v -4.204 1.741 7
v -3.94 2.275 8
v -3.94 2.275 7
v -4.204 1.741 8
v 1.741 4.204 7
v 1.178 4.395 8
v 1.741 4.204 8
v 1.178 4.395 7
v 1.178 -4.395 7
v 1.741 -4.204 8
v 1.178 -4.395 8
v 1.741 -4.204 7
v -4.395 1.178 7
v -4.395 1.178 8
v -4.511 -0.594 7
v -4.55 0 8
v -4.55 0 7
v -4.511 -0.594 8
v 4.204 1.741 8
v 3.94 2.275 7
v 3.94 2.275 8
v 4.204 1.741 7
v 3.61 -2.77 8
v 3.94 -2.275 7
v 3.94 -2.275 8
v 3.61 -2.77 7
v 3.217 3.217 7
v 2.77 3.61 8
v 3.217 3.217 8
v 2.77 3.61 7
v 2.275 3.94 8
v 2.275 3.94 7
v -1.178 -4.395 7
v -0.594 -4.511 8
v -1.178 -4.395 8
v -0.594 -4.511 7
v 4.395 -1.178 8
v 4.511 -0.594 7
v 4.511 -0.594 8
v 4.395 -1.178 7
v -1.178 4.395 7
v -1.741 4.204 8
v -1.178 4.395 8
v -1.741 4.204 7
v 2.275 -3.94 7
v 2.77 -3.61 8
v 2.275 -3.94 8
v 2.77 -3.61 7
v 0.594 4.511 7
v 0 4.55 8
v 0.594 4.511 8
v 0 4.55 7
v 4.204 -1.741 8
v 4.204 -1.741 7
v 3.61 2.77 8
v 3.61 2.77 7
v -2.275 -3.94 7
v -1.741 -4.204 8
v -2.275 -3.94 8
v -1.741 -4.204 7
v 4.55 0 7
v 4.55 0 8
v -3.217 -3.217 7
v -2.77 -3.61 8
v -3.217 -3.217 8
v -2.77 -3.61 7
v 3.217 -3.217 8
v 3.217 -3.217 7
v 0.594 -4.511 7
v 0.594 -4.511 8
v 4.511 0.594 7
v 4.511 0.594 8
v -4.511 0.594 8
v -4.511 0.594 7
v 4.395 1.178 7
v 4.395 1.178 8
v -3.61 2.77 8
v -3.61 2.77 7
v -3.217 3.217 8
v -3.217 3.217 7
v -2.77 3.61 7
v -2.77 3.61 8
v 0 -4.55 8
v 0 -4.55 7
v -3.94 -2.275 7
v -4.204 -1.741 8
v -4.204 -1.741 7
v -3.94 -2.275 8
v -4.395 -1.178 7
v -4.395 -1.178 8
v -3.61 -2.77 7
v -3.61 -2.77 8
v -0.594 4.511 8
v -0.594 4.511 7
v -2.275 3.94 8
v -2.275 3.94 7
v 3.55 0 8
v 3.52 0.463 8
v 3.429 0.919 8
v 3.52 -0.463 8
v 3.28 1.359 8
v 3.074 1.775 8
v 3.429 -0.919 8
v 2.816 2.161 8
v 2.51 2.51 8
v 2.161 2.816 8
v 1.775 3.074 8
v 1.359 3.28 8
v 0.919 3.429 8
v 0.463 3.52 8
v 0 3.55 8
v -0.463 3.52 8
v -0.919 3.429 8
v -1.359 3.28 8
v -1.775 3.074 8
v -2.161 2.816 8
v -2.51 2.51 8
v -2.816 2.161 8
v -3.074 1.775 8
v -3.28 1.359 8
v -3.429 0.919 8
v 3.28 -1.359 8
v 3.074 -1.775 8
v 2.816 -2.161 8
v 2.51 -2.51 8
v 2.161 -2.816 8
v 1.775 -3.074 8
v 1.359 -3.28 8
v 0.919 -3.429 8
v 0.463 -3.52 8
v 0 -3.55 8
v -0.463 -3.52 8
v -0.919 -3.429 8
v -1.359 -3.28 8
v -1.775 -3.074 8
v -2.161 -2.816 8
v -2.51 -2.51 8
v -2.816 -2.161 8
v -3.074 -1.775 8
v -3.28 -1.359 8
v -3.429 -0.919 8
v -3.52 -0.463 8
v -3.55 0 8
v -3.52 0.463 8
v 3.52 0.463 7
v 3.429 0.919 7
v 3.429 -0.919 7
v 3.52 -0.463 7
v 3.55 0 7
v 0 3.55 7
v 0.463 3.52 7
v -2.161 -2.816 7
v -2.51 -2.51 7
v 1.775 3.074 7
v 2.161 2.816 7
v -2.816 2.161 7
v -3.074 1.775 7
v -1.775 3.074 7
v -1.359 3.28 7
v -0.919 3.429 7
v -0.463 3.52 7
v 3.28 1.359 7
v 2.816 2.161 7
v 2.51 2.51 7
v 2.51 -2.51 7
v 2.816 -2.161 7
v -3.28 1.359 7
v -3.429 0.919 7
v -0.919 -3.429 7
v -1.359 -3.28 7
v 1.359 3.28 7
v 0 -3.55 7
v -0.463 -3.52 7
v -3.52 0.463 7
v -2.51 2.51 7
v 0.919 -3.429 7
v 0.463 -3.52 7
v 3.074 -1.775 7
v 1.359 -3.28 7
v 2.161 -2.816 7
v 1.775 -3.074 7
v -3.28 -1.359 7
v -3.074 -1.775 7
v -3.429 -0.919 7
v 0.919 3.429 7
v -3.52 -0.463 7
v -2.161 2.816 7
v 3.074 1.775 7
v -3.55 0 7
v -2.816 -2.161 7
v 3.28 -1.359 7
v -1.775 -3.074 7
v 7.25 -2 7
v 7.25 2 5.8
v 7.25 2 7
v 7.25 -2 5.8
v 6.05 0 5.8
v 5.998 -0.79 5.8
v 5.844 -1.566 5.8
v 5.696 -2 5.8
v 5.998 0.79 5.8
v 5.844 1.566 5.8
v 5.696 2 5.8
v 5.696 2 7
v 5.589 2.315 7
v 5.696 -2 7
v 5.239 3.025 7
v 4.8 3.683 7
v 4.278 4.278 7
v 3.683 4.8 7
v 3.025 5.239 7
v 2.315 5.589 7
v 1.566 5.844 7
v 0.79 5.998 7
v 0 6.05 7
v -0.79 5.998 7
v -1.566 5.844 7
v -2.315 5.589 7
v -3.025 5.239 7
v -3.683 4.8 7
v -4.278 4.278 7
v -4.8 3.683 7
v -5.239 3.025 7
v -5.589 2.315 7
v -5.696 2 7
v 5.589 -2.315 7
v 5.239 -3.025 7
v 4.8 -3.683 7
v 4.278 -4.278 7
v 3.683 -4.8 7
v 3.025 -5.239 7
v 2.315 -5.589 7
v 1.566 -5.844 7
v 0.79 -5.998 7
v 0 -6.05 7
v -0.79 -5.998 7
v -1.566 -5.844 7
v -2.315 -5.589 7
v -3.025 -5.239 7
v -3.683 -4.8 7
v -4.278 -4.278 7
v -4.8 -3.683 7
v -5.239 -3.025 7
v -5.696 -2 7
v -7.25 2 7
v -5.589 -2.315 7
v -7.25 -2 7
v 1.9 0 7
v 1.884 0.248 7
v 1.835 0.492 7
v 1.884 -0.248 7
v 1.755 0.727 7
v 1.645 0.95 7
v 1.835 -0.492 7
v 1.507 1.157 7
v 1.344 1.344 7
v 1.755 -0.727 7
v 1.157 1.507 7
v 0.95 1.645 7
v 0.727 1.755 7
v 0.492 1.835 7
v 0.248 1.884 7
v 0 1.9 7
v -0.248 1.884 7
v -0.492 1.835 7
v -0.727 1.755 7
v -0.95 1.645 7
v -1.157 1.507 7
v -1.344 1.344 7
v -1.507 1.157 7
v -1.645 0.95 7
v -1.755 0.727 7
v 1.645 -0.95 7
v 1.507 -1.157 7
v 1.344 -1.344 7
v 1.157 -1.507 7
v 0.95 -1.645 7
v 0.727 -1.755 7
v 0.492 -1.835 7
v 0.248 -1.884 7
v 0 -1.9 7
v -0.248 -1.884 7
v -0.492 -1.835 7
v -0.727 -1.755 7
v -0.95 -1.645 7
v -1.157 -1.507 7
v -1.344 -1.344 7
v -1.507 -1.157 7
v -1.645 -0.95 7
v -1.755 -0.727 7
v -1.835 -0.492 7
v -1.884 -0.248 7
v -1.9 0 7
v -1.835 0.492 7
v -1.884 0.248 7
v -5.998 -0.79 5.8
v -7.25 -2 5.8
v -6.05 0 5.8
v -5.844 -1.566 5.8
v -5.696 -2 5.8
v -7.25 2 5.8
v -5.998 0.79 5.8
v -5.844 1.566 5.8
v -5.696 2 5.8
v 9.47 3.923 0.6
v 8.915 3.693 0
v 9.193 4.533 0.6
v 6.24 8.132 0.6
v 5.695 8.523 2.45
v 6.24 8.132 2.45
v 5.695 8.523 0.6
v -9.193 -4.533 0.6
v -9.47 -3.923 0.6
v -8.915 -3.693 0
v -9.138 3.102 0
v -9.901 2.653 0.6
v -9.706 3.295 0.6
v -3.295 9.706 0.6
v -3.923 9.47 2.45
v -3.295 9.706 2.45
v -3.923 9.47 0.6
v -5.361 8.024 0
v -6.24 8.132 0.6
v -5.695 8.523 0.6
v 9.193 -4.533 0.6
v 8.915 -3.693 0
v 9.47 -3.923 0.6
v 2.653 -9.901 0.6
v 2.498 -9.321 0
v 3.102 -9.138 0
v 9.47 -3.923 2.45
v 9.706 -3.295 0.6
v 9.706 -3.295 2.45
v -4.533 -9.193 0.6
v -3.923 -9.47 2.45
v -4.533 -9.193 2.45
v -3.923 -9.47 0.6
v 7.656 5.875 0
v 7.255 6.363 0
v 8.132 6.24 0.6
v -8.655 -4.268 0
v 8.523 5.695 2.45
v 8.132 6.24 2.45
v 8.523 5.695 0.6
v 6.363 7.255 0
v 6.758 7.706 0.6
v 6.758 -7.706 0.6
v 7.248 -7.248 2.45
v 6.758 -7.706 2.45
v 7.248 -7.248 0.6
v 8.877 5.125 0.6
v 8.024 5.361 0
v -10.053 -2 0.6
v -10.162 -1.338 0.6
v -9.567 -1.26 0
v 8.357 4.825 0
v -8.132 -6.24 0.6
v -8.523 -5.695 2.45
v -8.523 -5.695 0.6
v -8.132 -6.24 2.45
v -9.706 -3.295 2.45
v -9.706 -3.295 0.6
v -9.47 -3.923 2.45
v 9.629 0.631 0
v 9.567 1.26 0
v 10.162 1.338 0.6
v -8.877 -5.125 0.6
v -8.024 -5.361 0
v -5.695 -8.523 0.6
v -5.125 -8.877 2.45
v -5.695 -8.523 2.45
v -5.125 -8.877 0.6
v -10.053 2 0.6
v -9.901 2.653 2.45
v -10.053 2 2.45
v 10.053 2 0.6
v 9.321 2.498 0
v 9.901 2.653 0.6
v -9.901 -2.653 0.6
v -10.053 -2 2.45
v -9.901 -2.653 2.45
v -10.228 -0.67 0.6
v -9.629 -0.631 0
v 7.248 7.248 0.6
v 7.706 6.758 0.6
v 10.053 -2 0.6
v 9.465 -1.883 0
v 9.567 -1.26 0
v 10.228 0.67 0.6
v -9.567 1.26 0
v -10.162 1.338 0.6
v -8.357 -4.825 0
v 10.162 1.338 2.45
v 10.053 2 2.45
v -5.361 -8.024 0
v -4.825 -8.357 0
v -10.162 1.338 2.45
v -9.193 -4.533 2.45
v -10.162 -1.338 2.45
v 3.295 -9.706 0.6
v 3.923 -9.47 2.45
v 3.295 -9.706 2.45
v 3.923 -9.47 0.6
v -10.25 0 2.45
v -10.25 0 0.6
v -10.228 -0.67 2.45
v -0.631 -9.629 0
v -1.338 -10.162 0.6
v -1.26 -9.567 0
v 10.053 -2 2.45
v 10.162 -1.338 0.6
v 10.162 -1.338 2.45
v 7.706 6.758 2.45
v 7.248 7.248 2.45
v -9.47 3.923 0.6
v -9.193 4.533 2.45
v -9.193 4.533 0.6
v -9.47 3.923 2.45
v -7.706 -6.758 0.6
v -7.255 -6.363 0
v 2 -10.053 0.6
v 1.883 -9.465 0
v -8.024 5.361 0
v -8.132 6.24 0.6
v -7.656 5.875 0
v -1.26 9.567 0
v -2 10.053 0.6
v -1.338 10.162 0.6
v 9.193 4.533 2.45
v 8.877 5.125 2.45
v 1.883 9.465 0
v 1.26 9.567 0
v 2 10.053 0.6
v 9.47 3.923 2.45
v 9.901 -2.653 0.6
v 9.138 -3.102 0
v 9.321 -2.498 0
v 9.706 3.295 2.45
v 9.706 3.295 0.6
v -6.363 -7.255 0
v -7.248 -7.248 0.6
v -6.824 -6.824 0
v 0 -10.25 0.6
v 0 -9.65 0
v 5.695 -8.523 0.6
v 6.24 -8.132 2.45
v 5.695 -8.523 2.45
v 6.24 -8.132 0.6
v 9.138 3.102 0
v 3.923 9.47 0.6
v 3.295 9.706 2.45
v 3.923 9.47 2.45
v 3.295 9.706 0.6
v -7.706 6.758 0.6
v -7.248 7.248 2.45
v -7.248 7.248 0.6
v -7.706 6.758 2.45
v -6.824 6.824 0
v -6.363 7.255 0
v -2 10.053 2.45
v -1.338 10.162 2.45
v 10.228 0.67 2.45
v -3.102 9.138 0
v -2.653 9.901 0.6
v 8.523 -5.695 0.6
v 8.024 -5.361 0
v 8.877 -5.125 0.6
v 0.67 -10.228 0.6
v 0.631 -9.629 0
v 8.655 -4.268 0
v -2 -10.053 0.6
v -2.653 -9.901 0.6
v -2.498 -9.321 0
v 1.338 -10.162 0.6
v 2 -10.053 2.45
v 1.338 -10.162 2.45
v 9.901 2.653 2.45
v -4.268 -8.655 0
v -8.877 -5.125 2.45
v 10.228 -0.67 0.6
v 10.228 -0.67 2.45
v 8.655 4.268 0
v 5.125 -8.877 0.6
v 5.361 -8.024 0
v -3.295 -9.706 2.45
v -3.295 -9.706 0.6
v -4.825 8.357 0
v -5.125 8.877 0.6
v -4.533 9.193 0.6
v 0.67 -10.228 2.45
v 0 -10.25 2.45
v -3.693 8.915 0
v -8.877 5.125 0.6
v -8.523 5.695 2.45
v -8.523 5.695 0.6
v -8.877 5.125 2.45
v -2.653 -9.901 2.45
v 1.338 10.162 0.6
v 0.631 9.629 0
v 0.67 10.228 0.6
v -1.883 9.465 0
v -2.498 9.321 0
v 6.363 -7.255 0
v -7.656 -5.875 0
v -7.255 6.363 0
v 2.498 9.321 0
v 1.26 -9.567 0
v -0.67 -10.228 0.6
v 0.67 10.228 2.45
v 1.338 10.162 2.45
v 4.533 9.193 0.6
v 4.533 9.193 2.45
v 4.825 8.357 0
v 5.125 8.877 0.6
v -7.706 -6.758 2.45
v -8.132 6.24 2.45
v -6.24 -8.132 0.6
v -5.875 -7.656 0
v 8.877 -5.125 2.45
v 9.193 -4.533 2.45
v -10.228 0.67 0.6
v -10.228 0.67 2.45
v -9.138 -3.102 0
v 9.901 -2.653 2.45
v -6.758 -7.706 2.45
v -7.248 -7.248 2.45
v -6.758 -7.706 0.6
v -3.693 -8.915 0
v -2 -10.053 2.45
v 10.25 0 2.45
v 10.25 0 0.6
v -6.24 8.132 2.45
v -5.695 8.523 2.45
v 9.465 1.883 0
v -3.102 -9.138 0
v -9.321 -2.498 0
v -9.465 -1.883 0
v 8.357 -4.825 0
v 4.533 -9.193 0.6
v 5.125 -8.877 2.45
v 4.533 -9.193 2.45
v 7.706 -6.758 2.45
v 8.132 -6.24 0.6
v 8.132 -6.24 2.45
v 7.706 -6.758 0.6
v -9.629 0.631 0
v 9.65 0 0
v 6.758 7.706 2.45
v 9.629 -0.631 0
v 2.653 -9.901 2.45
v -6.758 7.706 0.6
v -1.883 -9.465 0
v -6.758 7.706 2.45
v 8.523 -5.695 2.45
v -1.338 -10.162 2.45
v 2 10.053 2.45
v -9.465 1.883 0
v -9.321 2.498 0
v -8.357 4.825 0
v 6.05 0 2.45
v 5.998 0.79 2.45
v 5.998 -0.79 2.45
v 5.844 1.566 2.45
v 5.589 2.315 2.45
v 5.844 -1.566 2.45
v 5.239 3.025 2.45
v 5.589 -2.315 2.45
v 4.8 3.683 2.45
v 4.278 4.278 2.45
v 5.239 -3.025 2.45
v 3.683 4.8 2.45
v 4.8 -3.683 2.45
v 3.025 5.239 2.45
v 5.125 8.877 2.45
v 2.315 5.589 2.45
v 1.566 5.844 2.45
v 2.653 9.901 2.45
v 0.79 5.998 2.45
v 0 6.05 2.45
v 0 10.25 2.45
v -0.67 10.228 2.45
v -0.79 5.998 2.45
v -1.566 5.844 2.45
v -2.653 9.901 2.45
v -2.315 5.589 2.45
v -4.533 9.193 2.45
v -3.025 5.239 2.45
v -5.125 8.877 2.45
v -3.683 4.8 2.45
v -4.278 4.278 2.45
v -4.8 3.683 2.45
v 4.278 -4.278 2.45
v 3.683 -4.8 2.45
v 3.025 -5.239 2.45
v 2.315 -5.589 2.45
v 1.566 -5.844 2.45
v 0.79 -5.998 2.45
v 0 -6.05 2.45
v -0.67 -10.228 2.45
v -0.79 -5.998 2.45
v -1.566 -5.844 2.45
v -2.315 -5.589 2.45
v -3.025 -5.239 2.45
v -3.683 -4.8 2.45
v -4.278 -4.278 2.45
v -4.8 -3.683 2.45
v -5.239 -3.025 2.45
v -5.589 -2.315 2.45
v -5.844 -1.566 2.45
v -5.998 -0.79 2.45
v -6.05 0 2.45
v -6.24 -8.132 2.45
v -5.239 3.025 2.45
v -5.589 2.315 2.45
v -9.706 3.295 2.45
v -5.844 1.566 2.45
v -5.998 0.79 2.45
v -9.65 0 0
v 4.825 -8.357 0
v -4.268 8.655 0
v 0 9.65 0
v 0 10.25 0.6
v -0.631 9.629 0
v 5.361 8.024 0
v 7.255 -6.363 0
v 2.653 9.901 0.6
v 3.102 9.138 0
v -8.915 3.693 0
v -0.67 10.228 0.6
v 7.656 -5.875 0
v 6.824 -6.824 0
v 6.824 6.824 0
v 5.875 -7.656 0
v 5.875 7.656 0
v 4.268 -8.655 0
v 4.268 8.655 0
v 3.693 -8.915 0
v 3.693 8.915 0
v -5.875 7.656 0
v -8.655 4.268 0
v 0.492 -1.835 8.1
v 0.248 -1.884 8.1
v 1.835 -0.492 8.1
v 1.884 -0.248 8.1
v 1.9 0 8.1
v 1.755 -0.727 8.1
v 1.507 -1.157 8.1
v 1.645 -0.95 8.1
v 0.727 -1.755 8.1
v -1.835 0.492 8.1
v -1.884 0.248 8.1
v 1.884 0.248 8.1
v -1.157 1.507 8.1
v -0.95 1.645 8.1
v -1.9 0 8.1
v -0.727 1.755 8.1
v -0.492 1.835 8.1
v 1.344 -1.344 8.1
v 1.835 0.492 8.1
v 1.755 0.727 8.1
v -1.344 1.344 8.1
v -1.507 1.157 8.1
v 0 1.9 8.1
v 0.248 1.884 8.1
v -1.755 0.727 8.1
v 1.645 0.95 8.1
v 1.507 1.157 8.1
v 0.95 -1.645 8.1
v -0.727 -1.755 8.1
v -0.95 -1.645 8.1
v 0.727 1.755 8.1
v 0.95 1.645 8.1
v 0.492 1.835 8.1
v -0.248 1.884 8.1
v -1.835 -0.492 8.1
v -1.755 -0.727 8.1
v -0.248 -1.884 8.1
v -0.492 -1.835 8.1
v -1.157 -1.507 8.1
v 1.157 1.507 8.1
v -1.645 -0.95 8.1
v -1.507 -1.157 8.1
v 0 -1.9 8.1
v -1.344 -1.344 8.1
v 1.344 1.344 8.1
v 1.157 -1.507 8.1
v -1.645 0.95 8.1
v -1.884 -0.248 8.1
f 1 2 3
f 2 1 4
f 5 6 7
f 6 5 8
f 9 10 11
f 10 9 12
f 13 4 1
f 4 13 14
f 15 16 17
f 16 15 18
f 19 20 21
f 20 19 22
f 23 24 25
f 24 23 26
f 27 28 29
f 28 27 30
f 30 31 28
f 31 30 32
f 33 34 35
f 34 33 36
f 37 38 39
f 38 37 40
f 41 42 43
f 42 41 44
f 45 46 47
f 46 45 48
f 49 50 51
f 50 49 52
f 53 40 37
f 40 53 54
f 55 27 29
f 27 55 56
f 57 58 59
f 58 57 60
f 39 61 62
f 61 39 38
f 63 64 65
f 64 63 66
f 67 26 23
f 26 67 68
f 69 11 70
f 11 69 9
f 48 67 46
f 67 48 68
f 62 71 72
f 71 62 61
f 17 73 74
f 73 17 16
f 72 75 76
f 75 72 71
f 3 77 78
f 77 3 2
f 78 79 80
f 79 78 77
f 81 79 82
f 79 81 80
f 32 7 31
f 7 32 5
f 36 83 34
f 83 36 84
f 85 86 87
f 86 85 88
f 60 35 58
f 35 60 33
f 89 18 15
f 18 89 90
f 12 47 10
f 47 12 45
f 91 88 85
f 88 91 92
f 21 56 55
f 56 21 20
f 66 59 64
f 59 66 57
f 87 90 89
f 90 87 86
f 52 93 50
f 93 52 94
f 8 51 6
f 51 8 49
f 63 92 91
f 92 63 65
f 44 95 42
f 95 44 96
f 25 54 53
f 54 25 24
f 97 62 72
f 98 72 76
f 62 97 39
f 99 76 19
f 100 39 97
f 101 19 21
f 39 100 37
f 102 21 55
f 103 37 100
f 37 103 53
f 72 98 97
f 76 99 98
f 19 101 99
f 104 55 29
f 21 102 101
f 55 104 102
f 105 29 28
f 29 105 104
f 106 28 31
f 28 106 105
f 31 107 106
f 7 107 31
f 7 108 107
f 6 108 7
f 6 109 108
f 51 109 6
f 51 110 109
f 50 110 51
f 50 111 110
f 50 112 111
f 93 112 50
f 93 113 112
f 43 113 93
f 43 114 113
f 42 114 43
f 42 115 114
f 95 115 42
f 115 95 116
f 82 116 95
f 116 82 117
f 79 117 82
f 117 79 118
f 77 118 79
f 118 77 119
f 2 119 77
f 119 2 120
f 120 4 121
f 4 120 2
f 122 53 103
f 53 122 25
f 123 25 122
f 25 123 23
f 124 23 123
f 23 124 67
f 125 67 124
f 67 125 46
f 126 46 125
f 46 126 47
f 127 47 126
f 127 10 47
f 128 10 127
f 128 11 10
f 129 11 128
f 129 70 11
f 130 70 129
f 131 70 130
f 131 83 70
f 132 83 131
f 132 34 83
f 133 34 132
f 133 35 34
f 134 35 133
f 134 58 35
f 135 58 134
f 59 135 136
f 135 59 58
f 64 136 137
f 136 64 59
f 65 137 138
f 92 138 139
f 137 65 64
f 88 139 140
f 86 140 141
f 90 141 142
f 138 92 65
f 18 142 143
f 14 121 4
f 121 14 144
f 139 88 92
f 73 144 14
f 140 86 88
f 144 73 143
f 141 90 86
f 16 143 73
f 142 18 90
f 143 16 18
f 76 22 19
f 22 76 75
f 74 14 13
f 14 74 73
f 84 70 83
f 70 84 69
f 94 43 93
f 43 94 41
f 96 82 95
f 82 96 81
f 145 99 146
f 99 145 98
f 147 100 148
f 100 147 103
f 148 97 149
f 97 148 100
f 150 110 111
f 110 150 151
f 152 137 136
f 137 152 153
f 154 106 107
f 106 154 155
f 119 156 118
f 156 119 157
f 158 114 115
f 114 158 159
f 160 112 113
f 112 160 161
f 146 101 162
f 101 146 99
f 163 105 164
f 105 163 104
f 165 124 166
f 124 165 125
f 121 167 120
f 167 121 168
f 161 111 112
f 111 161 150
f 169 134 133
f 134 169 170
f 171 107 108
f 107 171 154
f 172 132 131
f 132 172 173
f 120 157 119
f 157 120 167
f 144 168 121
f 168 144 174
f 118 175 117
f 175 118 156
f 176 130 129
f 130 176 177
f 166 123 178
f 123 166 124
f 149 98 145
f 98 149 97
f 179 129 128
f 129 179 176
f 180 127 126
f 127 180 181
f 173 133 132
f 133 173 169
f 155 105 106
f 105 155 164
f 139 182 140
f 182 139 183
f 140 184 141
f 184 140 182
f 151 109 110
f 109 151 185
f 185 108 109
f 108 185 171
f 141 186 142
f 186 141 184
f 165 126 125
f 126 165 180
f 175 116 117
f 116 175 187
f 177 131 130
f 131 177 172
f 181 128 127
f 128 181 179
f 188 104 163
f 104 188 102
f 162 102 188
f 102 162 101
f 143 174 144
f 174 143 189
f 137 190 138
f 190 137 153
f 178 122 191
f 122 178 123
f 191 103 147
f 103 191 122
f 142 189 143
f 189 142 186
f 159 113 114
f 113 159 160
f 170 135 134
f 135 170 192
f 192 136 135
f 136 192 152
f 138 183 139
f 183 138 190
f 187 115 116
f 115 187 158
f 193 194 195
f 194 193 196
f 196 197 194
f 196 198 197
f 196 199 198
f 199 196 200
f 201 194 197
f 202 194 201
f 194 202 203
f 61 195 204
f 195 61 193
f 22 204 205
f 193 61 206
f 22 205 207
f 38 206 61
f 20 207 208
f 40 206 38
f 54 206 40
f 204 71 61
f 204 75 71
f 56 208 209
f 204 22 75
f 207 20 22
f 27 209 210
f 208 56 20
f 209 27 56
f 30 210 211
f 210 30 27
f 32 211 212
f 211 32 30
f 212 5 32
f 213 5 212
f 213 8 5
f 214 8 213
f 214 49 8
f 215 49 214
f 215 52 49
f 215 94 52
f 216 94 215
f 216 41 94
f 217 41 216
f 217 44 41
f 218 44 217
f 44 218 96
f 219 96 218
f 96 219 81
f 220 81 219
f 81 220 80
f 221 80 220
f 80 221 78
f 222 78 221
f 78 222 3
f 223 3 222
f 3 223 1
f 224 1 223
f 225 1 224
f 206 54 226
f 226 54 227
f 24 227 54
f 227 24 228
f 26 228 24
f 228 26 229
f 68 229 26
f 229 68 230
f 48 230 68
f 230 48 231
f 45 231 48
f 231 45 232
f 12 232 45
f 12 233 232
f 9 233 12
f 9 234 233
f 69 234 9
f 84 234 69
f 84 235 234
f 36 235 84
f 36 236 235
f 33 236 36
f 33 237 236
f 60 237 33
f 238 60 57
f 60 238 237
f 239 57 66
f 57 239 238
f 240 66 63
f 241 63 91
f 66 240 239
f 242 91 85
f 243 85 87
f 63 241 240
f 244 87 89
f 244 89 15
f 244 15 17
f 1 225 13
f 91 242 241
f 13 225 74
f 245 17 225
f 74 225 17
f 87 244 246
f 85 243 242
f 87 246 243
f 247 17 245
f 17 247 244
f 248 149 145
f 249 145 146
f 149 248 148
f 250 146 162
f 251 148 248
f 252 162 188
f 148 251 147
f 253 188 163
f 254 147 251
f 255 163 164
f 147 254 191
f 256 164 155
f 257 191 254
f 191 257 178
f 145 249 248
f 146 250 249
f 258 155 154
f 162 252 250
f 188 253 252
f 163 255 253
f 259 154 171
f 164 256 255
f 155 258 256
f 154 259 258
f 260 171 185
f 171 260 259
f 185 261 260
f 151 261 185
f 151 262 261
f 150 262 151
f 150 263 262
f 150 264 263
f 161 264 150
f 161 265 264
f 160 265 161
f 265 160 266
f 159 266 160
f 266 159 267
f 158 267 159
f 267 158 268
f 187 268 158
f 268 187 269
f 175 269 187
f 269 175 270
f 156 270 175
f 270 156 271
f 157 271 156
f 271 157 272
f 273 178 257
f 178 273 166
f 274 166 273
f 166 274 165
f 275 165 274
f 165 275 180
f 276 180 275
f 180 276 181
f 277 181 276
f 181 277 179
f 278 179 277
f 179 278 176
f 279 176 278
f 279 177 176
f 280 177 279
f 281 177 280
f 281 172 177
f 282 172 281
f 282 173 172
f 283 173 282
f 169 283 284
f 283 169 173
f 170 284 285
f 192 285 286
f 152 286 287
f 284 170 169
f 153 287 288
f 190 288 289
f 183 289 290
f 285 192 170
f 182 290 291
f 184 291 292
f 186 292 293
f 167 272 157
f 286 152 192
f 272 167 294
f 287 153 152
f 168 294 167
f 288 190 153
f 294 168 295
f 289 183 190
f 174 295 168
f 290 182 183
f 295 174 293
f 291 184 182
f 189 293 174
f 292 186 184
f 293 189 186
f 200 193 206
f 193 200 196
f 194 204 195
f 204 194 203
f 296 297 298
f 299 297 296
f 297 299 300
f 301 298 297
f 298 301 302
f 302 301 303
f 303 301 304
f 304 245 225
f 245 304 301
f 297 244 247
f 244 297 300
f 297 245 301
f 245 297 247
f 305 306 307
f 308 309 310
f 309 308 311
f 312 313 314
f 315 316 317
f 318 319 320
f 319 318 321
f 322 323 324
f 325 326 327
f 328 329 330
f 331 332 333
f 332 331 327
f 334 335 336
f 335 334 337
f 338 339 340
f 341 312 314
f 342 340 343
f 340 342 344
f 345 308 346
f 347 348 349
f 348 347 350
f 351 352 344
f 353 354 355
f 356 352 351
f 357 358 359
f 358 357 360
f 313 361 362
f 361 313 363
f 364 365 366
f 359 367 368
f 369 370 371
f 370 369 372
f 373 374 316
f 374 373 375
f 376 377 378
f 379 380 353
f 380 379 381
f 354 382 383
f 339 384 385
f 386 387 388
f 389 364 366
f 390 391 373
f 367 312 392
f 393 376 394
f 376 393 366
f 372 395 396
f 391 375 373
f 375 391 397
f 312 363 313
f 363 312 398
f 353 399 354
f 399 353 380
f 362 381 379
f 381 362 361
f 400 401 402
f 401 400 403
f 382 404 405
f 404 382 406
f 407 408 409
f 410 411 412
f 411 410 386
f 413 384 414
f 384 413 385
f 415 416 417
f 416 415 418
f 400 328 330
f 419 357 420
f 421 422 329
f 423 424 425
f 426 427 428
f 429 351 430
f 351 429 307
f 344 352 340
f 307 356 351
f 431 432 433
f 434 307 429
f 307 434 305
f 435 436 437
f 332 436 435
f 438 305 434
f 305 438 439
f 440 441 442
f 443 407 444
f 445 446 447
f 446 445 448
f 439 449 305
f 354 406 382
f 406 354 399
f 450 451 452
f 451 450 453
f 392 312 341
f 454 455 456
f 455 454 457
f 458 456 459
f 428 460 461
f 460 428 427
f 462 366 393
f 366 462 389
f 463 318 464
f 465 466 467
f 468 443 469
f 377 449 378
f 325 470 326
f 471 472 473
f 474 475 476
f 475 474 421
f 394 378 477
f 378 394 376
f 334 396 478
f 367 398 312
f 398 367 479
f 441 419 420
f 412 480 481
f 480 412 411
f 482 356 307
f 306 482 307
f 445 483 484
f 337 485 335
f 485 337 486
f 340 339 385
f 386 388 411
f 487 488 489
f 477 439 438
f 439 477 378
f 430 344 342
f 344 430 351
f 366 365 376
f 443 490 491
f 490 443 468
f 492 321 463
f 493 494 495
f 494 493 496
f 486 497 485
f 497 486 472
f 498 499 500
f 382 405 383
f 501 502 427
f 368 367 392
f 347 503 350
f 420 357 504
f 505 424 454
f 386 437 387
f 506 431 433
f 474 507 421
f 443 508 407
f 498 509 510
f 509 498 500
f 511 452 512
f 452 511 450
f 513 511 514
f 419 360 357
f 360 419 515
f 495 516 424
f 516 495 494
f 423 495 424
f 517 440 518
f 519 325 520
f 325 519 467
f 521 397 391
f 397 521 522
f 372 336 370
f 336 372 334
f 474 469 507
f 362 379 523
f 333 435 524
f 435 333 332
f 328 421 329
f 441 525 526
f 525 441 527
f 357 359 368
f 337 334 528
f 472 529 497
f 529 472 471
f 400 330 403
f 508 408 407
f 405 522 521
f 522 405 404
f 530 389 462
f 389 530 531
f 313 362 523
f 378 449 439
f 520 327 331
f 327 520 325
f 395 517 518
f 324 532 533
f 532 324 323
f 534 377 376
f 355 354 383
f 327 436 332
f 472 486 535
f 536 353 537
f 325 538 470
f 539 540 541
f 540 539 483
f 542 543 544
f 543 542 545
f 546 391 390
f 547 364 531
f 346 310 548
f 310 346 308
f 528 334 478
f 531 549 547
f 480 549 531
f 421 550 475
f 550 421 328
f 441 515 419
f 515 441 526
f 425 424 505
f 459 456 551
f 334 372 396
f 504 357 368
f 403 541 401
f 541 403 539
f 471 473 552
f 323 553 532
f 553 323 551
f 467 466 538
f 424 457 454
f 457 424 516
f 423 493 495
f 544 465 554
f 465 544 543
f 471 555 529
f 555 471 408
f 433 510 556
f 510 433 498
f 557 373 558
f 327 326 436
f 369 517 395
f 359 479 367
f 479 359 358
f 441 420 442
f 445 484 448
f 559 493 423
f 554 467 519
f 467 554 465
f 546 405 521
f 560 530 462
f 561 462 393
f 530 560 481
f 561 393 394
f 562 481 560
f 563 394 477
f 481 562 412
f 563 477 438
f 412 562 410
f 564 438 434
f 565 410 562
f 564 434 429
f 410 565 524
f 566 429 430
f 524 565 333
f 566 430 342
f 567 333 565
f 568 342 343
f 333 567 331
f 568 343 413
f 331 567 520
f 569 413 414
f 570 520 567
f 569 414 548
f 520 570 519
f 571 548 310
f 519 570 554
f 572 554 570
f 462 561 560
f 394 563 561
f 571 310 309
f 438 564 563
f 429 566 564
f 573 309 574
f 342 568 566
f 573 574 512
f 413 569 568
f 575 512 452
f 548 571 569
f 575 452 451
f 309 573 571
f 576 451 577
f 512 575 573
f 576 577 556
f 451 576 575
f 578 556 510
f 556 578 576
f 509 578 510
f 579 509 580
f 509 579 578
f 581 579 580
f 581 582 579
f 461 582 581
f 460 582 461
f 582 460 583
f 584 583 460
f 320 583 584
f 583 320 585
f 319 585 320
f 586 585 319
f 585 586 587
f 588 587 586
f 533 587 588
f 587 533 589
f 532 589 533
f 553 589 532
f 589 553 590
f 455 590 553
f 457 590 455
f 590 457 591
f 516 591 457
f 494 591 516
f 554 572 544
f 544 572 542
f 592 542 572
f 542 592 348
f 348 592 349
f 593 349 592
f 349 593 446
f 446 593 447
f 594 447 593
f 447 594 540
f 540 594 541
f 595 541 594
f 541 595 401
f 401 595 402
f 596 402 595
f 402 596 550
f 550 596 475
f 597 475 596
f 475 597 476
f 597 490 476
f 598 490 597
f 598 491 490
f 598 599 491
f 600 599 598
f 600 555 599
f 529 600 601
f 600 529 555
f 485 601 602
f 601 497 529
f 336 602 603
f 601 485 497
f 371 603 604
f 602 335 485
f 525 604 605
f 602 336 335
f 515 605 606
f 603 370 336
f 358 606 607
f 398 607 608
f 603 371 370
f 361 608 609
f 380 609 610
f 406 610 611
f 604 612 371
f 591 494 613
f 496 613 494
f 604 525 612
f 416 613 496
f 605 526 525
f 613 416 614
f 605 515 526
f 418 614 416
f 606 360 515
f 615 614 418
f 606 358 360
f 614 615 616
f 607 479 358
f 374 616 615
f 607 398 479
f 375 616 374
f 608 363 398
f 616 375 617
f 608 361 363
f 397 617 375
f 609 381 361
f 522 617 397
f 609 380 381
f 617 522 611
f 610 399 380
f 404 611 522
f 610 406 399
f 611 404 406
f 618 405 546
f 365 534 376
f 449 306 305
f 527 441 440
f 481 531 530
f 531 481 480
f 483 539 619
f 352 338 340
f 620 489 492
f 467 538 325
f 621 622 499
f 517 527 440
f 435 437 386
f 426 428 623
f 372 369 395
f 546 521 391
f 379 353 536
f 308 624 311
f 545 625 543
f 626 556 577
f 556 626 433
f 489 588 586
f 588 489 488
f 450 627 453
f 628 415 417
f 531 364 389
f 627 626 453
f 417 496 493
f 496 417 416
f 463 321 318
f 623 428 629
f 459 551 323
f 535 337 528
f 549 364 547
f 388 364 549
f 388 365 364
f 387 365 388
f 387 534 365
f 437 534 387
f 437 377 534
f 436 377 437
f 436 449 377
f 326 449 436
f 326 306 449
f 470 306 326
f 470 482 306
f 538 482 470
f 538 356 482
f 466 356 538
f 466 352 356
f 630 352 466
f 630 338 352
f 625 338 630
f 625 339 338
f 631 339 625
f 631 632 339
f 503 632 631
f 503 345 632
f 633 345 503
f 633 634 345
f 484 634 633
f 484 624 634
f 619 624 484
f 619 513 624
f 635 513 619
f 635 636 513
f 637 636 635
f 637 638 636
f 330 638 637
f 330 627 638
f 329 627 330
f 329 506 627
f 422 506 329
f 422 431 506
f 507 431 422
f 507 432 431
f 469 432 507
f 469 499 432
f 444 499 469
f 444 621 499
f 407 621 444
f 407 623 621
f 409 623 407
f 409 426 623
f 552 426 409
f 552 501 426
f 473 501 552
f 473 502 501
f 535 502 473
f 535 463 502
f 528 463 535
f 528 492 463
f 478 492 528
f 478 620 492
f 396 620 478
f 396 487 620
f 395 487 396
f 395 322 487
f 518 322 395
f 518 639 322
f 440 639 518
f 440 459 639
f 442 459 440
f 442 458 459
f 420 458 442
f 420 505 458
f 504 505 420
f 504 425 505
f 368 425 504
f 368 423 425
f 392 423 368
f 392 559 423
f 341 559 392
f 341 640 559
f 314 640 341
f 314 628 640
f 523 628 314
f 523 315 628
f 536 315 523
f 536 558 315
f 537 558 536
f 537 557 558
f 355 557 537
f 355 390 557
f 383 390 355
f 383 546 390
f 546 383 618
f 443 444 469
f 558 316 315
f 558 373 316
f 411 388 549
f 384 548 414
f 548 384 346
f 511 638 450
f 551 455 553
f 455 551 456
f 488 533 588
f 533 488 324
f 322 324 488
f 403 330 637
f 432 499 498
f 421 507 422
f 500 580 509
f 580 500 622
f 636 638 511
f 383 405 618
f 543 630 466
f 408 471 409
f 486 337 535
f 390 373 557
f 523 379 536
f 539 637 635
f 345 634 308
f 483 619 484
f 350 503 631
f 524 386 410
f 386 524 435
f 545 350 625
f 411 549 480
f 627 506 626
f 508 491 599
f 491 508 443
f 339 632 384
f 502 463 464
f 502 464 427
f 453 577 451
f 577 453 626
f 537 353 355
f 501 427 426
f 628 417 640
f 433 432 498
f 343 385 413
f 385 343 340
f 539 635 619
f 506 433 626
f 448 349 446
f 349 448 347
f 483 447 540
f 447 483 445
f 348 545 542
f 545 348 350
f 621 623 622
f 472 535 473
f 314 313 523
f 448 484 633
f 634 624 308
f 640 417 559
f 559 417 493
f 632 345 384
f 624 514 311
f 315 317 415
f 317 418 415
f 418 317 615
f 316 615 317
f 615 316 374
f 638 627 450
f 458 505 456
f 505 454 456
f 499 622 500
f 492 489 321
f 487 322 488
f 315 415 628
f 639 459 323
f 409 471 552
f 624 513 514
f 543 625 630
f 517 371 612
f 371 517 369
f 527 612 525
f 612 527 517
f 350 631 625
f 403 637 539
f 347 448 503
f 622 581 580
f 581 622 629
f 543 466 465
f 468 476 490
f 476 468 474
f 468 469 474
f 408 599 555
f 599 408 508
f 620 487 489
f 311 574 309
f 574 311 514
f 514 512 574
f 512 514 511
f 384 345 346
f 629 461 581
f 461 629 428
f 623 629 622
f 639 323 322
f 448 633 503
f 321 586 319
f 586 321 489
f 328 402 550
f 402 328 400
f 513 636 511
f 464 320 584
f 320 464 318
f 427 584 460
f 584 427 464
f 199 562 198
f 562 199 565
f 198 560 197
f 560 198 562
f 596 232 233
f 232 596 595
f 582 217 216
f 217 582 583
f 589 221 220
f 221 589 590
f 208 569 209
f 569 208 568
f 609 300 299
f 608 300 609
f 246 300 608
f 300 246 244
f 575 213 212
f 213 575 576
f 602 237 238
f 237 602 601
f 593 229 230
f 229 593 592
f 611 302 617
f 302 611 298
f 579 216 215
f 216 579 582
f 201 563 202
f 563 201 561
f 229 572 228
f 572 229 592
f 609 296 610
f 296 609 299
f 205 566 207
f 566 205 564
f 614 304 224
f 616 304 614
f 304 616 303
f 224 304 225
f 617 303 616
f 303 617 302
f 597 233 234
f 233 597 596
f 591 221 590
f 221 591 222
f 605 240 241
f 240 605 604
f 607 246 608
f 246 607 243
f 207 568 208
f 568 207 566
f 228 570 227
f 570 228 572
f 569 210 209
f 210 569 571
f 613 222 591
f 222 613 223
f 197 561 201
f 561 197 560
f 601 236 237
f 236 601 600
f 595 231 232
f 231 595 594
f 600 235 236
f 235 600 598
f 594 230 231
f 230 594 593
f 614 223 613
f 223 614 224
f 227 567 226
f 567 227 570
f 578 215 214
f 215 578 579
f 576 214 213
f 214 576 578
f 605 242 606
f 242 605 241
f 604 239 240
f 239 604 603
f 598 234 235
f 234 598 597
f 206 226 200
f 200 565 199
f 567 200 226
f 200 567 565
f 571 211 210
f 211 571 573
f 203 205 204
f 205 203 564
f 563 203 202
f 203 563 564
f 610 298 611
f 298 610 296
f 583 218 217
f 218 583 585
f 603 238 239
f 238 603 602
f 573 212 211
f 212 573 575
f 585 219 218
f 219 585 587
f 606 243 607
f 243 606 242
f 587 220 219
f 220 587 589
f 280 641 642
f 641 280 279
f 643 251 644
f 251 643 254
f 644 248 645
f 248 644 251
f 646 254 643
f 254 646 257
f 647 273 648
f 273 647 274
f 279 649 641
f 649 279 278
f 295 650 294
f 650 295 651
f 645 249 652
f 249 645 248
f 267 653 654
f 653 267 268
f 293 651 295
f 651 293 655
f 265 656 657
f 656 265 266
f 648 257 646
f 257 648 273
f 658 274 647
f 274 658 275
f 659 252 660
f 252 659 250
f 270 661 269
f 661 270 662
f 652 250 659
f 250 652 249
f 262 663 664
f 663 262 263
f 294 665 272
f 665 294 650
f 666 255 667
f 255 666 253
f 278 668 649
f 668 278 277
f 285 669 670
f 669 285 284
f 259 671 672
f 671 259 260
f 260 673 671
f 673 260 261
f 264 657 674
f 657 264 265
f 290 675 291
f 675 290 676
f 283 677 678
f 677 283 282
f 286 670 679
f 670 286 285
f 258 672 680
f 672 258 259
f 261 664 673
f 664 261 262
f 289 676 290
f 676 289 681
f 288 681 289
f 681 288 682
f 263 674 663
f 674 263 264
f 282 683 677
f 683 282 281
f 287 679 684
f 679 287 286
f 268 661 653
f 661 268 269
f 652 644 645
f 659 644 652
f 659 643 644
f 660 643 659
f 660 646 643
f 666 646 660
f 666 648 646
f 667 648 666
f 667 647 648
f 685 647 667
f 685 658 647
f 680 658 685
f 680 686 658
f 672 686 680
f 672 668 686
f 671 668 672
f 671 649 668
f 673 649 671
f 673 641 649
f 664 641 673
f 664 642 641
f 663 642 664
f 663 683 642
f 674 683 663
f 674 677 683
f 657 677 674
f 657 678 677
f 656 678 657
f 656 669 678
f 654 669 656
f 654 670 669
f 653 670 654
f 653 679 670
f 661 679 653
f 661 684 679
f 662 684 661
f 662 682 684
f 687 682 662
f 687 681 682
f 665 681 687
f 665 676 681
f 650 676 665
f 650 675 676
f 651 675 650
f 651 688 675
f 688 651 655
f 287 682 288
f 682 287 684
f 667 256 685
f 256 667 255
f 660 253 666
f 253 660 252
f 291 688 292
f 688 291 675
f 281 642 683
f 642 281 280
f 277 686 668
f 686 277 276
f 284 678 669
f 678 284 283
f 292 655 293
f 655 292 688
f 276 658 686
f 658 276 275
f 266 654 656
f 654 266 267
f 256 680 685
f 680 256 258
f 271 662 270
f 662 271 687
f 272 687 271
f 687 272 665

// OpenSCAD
// file: enclosure_lib.scad
// Generic helpers for the enclosure. Independent of enclosure_config.scad.

_e = 0.01;

module rounded_rect_2d(size, r) {
  rr = max(min(r, size.x / 2 - _e, size.y / 2 - _e), 0);
  if (rr > 0)
    offset(r=rr) translate([rr, rr]) square([size.x - 2 * rr, size.y - 2 * rr]);
  else
    square(size);
}

// Rounded rectangle in the XZ plane (x centered, z 0..h), extruded along +Y (y 0..t).
module xz_slab(w, h, r, t) {
  translate([0, t, 0]) rotate([90, 0, 0])
      linear_extrude(t) translate([-w / 2, 0]) rounded_rect_2d([w, h], r);
}

// Box with rounded front->back edges, rounded/chamfered front rim and optional
// front tilt about the front-bottom edge. Back face stays flat. x centered, z 0..h, y 0..d.
module rounded_body(w, h, d, r, fr = 0, fstyle = "round", tilt = 0, steps = 6) {
  L = h / cos(tilt);
  // [depth behind face, inset]
  prof =
    fr <= 0 ? [[0, 0]]
    : fstyle == "chamfer" ? [[0, fr], [fr, 0]]
    : [for (i = [0:steps]) let (a = 90 * i / steps) [fr * (1 - cos(a)), fr * (1 - sin(a))]];
  // wolpertinger: clipping to z 0..h trims the front rounding at top/bottom when tilted; fine up to ~30 deg.
  intersection() {
    hull() {
      translate([0, d - _e, 0]) xz_slab(w, h, r, _e);
      for (p = prof)
        rotate([-tilt, 0, 0]) translate([0, p[0], p[1]])
            xz_slab(w - 2 * p[1], L - 2 * p[1], max(r - p[1], 0), _e);
    }
    translate([-w, -1, 0]) cube([2 * w, d + 2, h]);
  }
}

// 45 deg ridge along X, pointing +Z. Use with +tol as groove.
module snap_ridge(len, h) {
  rotate([90, 0, 90]) linear_extrude(len, center=true)
      polygon([[-h, 0], [h, 0], [0, h]]);
}

module stadium_2d(len, w) {
  hull()for (s = [-1, 1]) translate([s * (len - w) / 2, 0]) circle(d=w);
}

// Round holes on a square grid inside radius area_r.
module hole_grid_2d(area_r, d, pitch) {
  n = floor(area_r / pitch);
  for (i = [-n:n], j = [-n:n])
    if (norm([i, j]) * pitch <= area_r - d / 2)
      translate([i * pitch, j * pitch]) circle(d=d);
}

// n parallel slots, rotated by angle (0 = along Y).
module slot_grid_2d(n, w, len, pitch, angle = 0) {
  rotate(angle)for (i = [0:n - 1])
    translate([(i - (n - 1) / 2) * pitch, 0]) rotate(90) stadium_2d(len, w);
}
// main file
include <enclosure_config.scad>
use <enclosure_lib.scad>

// Local frame: z = 0 is the housing top surface, button at rest (locked, lugs along ±X).
R = btn_body_d / 2;
z_seat = -(wall + btn_seat_depth);
z_lug_top = -wall + btn_lock_depth - btn_log_depth_cor; // lug top sits in the ceiling recess

module cap_2d(inset) {
  if (btn_shape == "square")
    offset(r=2) square(btn_cap_d - 4 - 2 * inset, center=true);
  else
    circle(d=btn_cap_d - 2 * inset, $fn=2 * $fn);
}

module cap() {
  h = btn_protrude - btn_stroke;
  c = min(0.6, h / 3);
  translate([0, 0, btn_stroke]) hull() {
      linear_extrude(h - c) cap_2d(0);
      linear_extrude(h) cap_2d(c);
    }
}

module button() {
  cap();
  translate([0, 0, z_seat]) cylinder(d=btn_body_d, h=btn_stroke - z_seat + eps);
  for (a = [0, 180])
    rotate(a)
      translate([R - 0.5, -btn_lug.x / 2, z_seat]) cube([btn_lug.y + 0.5, btn_lug.x, z_lug_top - z_seat]);
  // spring centering ring
  translate([0, 0, z_seat - 1]) difference() {
      cylinder(d=spring_id - 2 * tol, h=1 + eps);
      translate([0, 0, -1]) cylinder(d=spring_id - 2 * tol - 2, h=3);
    }
  // nub onto the switch plunger
  if (btn_nub_len > 0)
    translate([0, 0, z_seat - btn_nub_len]) cylinder(d=sw_act_d + 1, h=btn_nub_len + eps);
}

// Cap down on the bed.
module button_print() translate([0, 0, btn_protrude]) rotate([180, 0, 0]) button();

button_print();
